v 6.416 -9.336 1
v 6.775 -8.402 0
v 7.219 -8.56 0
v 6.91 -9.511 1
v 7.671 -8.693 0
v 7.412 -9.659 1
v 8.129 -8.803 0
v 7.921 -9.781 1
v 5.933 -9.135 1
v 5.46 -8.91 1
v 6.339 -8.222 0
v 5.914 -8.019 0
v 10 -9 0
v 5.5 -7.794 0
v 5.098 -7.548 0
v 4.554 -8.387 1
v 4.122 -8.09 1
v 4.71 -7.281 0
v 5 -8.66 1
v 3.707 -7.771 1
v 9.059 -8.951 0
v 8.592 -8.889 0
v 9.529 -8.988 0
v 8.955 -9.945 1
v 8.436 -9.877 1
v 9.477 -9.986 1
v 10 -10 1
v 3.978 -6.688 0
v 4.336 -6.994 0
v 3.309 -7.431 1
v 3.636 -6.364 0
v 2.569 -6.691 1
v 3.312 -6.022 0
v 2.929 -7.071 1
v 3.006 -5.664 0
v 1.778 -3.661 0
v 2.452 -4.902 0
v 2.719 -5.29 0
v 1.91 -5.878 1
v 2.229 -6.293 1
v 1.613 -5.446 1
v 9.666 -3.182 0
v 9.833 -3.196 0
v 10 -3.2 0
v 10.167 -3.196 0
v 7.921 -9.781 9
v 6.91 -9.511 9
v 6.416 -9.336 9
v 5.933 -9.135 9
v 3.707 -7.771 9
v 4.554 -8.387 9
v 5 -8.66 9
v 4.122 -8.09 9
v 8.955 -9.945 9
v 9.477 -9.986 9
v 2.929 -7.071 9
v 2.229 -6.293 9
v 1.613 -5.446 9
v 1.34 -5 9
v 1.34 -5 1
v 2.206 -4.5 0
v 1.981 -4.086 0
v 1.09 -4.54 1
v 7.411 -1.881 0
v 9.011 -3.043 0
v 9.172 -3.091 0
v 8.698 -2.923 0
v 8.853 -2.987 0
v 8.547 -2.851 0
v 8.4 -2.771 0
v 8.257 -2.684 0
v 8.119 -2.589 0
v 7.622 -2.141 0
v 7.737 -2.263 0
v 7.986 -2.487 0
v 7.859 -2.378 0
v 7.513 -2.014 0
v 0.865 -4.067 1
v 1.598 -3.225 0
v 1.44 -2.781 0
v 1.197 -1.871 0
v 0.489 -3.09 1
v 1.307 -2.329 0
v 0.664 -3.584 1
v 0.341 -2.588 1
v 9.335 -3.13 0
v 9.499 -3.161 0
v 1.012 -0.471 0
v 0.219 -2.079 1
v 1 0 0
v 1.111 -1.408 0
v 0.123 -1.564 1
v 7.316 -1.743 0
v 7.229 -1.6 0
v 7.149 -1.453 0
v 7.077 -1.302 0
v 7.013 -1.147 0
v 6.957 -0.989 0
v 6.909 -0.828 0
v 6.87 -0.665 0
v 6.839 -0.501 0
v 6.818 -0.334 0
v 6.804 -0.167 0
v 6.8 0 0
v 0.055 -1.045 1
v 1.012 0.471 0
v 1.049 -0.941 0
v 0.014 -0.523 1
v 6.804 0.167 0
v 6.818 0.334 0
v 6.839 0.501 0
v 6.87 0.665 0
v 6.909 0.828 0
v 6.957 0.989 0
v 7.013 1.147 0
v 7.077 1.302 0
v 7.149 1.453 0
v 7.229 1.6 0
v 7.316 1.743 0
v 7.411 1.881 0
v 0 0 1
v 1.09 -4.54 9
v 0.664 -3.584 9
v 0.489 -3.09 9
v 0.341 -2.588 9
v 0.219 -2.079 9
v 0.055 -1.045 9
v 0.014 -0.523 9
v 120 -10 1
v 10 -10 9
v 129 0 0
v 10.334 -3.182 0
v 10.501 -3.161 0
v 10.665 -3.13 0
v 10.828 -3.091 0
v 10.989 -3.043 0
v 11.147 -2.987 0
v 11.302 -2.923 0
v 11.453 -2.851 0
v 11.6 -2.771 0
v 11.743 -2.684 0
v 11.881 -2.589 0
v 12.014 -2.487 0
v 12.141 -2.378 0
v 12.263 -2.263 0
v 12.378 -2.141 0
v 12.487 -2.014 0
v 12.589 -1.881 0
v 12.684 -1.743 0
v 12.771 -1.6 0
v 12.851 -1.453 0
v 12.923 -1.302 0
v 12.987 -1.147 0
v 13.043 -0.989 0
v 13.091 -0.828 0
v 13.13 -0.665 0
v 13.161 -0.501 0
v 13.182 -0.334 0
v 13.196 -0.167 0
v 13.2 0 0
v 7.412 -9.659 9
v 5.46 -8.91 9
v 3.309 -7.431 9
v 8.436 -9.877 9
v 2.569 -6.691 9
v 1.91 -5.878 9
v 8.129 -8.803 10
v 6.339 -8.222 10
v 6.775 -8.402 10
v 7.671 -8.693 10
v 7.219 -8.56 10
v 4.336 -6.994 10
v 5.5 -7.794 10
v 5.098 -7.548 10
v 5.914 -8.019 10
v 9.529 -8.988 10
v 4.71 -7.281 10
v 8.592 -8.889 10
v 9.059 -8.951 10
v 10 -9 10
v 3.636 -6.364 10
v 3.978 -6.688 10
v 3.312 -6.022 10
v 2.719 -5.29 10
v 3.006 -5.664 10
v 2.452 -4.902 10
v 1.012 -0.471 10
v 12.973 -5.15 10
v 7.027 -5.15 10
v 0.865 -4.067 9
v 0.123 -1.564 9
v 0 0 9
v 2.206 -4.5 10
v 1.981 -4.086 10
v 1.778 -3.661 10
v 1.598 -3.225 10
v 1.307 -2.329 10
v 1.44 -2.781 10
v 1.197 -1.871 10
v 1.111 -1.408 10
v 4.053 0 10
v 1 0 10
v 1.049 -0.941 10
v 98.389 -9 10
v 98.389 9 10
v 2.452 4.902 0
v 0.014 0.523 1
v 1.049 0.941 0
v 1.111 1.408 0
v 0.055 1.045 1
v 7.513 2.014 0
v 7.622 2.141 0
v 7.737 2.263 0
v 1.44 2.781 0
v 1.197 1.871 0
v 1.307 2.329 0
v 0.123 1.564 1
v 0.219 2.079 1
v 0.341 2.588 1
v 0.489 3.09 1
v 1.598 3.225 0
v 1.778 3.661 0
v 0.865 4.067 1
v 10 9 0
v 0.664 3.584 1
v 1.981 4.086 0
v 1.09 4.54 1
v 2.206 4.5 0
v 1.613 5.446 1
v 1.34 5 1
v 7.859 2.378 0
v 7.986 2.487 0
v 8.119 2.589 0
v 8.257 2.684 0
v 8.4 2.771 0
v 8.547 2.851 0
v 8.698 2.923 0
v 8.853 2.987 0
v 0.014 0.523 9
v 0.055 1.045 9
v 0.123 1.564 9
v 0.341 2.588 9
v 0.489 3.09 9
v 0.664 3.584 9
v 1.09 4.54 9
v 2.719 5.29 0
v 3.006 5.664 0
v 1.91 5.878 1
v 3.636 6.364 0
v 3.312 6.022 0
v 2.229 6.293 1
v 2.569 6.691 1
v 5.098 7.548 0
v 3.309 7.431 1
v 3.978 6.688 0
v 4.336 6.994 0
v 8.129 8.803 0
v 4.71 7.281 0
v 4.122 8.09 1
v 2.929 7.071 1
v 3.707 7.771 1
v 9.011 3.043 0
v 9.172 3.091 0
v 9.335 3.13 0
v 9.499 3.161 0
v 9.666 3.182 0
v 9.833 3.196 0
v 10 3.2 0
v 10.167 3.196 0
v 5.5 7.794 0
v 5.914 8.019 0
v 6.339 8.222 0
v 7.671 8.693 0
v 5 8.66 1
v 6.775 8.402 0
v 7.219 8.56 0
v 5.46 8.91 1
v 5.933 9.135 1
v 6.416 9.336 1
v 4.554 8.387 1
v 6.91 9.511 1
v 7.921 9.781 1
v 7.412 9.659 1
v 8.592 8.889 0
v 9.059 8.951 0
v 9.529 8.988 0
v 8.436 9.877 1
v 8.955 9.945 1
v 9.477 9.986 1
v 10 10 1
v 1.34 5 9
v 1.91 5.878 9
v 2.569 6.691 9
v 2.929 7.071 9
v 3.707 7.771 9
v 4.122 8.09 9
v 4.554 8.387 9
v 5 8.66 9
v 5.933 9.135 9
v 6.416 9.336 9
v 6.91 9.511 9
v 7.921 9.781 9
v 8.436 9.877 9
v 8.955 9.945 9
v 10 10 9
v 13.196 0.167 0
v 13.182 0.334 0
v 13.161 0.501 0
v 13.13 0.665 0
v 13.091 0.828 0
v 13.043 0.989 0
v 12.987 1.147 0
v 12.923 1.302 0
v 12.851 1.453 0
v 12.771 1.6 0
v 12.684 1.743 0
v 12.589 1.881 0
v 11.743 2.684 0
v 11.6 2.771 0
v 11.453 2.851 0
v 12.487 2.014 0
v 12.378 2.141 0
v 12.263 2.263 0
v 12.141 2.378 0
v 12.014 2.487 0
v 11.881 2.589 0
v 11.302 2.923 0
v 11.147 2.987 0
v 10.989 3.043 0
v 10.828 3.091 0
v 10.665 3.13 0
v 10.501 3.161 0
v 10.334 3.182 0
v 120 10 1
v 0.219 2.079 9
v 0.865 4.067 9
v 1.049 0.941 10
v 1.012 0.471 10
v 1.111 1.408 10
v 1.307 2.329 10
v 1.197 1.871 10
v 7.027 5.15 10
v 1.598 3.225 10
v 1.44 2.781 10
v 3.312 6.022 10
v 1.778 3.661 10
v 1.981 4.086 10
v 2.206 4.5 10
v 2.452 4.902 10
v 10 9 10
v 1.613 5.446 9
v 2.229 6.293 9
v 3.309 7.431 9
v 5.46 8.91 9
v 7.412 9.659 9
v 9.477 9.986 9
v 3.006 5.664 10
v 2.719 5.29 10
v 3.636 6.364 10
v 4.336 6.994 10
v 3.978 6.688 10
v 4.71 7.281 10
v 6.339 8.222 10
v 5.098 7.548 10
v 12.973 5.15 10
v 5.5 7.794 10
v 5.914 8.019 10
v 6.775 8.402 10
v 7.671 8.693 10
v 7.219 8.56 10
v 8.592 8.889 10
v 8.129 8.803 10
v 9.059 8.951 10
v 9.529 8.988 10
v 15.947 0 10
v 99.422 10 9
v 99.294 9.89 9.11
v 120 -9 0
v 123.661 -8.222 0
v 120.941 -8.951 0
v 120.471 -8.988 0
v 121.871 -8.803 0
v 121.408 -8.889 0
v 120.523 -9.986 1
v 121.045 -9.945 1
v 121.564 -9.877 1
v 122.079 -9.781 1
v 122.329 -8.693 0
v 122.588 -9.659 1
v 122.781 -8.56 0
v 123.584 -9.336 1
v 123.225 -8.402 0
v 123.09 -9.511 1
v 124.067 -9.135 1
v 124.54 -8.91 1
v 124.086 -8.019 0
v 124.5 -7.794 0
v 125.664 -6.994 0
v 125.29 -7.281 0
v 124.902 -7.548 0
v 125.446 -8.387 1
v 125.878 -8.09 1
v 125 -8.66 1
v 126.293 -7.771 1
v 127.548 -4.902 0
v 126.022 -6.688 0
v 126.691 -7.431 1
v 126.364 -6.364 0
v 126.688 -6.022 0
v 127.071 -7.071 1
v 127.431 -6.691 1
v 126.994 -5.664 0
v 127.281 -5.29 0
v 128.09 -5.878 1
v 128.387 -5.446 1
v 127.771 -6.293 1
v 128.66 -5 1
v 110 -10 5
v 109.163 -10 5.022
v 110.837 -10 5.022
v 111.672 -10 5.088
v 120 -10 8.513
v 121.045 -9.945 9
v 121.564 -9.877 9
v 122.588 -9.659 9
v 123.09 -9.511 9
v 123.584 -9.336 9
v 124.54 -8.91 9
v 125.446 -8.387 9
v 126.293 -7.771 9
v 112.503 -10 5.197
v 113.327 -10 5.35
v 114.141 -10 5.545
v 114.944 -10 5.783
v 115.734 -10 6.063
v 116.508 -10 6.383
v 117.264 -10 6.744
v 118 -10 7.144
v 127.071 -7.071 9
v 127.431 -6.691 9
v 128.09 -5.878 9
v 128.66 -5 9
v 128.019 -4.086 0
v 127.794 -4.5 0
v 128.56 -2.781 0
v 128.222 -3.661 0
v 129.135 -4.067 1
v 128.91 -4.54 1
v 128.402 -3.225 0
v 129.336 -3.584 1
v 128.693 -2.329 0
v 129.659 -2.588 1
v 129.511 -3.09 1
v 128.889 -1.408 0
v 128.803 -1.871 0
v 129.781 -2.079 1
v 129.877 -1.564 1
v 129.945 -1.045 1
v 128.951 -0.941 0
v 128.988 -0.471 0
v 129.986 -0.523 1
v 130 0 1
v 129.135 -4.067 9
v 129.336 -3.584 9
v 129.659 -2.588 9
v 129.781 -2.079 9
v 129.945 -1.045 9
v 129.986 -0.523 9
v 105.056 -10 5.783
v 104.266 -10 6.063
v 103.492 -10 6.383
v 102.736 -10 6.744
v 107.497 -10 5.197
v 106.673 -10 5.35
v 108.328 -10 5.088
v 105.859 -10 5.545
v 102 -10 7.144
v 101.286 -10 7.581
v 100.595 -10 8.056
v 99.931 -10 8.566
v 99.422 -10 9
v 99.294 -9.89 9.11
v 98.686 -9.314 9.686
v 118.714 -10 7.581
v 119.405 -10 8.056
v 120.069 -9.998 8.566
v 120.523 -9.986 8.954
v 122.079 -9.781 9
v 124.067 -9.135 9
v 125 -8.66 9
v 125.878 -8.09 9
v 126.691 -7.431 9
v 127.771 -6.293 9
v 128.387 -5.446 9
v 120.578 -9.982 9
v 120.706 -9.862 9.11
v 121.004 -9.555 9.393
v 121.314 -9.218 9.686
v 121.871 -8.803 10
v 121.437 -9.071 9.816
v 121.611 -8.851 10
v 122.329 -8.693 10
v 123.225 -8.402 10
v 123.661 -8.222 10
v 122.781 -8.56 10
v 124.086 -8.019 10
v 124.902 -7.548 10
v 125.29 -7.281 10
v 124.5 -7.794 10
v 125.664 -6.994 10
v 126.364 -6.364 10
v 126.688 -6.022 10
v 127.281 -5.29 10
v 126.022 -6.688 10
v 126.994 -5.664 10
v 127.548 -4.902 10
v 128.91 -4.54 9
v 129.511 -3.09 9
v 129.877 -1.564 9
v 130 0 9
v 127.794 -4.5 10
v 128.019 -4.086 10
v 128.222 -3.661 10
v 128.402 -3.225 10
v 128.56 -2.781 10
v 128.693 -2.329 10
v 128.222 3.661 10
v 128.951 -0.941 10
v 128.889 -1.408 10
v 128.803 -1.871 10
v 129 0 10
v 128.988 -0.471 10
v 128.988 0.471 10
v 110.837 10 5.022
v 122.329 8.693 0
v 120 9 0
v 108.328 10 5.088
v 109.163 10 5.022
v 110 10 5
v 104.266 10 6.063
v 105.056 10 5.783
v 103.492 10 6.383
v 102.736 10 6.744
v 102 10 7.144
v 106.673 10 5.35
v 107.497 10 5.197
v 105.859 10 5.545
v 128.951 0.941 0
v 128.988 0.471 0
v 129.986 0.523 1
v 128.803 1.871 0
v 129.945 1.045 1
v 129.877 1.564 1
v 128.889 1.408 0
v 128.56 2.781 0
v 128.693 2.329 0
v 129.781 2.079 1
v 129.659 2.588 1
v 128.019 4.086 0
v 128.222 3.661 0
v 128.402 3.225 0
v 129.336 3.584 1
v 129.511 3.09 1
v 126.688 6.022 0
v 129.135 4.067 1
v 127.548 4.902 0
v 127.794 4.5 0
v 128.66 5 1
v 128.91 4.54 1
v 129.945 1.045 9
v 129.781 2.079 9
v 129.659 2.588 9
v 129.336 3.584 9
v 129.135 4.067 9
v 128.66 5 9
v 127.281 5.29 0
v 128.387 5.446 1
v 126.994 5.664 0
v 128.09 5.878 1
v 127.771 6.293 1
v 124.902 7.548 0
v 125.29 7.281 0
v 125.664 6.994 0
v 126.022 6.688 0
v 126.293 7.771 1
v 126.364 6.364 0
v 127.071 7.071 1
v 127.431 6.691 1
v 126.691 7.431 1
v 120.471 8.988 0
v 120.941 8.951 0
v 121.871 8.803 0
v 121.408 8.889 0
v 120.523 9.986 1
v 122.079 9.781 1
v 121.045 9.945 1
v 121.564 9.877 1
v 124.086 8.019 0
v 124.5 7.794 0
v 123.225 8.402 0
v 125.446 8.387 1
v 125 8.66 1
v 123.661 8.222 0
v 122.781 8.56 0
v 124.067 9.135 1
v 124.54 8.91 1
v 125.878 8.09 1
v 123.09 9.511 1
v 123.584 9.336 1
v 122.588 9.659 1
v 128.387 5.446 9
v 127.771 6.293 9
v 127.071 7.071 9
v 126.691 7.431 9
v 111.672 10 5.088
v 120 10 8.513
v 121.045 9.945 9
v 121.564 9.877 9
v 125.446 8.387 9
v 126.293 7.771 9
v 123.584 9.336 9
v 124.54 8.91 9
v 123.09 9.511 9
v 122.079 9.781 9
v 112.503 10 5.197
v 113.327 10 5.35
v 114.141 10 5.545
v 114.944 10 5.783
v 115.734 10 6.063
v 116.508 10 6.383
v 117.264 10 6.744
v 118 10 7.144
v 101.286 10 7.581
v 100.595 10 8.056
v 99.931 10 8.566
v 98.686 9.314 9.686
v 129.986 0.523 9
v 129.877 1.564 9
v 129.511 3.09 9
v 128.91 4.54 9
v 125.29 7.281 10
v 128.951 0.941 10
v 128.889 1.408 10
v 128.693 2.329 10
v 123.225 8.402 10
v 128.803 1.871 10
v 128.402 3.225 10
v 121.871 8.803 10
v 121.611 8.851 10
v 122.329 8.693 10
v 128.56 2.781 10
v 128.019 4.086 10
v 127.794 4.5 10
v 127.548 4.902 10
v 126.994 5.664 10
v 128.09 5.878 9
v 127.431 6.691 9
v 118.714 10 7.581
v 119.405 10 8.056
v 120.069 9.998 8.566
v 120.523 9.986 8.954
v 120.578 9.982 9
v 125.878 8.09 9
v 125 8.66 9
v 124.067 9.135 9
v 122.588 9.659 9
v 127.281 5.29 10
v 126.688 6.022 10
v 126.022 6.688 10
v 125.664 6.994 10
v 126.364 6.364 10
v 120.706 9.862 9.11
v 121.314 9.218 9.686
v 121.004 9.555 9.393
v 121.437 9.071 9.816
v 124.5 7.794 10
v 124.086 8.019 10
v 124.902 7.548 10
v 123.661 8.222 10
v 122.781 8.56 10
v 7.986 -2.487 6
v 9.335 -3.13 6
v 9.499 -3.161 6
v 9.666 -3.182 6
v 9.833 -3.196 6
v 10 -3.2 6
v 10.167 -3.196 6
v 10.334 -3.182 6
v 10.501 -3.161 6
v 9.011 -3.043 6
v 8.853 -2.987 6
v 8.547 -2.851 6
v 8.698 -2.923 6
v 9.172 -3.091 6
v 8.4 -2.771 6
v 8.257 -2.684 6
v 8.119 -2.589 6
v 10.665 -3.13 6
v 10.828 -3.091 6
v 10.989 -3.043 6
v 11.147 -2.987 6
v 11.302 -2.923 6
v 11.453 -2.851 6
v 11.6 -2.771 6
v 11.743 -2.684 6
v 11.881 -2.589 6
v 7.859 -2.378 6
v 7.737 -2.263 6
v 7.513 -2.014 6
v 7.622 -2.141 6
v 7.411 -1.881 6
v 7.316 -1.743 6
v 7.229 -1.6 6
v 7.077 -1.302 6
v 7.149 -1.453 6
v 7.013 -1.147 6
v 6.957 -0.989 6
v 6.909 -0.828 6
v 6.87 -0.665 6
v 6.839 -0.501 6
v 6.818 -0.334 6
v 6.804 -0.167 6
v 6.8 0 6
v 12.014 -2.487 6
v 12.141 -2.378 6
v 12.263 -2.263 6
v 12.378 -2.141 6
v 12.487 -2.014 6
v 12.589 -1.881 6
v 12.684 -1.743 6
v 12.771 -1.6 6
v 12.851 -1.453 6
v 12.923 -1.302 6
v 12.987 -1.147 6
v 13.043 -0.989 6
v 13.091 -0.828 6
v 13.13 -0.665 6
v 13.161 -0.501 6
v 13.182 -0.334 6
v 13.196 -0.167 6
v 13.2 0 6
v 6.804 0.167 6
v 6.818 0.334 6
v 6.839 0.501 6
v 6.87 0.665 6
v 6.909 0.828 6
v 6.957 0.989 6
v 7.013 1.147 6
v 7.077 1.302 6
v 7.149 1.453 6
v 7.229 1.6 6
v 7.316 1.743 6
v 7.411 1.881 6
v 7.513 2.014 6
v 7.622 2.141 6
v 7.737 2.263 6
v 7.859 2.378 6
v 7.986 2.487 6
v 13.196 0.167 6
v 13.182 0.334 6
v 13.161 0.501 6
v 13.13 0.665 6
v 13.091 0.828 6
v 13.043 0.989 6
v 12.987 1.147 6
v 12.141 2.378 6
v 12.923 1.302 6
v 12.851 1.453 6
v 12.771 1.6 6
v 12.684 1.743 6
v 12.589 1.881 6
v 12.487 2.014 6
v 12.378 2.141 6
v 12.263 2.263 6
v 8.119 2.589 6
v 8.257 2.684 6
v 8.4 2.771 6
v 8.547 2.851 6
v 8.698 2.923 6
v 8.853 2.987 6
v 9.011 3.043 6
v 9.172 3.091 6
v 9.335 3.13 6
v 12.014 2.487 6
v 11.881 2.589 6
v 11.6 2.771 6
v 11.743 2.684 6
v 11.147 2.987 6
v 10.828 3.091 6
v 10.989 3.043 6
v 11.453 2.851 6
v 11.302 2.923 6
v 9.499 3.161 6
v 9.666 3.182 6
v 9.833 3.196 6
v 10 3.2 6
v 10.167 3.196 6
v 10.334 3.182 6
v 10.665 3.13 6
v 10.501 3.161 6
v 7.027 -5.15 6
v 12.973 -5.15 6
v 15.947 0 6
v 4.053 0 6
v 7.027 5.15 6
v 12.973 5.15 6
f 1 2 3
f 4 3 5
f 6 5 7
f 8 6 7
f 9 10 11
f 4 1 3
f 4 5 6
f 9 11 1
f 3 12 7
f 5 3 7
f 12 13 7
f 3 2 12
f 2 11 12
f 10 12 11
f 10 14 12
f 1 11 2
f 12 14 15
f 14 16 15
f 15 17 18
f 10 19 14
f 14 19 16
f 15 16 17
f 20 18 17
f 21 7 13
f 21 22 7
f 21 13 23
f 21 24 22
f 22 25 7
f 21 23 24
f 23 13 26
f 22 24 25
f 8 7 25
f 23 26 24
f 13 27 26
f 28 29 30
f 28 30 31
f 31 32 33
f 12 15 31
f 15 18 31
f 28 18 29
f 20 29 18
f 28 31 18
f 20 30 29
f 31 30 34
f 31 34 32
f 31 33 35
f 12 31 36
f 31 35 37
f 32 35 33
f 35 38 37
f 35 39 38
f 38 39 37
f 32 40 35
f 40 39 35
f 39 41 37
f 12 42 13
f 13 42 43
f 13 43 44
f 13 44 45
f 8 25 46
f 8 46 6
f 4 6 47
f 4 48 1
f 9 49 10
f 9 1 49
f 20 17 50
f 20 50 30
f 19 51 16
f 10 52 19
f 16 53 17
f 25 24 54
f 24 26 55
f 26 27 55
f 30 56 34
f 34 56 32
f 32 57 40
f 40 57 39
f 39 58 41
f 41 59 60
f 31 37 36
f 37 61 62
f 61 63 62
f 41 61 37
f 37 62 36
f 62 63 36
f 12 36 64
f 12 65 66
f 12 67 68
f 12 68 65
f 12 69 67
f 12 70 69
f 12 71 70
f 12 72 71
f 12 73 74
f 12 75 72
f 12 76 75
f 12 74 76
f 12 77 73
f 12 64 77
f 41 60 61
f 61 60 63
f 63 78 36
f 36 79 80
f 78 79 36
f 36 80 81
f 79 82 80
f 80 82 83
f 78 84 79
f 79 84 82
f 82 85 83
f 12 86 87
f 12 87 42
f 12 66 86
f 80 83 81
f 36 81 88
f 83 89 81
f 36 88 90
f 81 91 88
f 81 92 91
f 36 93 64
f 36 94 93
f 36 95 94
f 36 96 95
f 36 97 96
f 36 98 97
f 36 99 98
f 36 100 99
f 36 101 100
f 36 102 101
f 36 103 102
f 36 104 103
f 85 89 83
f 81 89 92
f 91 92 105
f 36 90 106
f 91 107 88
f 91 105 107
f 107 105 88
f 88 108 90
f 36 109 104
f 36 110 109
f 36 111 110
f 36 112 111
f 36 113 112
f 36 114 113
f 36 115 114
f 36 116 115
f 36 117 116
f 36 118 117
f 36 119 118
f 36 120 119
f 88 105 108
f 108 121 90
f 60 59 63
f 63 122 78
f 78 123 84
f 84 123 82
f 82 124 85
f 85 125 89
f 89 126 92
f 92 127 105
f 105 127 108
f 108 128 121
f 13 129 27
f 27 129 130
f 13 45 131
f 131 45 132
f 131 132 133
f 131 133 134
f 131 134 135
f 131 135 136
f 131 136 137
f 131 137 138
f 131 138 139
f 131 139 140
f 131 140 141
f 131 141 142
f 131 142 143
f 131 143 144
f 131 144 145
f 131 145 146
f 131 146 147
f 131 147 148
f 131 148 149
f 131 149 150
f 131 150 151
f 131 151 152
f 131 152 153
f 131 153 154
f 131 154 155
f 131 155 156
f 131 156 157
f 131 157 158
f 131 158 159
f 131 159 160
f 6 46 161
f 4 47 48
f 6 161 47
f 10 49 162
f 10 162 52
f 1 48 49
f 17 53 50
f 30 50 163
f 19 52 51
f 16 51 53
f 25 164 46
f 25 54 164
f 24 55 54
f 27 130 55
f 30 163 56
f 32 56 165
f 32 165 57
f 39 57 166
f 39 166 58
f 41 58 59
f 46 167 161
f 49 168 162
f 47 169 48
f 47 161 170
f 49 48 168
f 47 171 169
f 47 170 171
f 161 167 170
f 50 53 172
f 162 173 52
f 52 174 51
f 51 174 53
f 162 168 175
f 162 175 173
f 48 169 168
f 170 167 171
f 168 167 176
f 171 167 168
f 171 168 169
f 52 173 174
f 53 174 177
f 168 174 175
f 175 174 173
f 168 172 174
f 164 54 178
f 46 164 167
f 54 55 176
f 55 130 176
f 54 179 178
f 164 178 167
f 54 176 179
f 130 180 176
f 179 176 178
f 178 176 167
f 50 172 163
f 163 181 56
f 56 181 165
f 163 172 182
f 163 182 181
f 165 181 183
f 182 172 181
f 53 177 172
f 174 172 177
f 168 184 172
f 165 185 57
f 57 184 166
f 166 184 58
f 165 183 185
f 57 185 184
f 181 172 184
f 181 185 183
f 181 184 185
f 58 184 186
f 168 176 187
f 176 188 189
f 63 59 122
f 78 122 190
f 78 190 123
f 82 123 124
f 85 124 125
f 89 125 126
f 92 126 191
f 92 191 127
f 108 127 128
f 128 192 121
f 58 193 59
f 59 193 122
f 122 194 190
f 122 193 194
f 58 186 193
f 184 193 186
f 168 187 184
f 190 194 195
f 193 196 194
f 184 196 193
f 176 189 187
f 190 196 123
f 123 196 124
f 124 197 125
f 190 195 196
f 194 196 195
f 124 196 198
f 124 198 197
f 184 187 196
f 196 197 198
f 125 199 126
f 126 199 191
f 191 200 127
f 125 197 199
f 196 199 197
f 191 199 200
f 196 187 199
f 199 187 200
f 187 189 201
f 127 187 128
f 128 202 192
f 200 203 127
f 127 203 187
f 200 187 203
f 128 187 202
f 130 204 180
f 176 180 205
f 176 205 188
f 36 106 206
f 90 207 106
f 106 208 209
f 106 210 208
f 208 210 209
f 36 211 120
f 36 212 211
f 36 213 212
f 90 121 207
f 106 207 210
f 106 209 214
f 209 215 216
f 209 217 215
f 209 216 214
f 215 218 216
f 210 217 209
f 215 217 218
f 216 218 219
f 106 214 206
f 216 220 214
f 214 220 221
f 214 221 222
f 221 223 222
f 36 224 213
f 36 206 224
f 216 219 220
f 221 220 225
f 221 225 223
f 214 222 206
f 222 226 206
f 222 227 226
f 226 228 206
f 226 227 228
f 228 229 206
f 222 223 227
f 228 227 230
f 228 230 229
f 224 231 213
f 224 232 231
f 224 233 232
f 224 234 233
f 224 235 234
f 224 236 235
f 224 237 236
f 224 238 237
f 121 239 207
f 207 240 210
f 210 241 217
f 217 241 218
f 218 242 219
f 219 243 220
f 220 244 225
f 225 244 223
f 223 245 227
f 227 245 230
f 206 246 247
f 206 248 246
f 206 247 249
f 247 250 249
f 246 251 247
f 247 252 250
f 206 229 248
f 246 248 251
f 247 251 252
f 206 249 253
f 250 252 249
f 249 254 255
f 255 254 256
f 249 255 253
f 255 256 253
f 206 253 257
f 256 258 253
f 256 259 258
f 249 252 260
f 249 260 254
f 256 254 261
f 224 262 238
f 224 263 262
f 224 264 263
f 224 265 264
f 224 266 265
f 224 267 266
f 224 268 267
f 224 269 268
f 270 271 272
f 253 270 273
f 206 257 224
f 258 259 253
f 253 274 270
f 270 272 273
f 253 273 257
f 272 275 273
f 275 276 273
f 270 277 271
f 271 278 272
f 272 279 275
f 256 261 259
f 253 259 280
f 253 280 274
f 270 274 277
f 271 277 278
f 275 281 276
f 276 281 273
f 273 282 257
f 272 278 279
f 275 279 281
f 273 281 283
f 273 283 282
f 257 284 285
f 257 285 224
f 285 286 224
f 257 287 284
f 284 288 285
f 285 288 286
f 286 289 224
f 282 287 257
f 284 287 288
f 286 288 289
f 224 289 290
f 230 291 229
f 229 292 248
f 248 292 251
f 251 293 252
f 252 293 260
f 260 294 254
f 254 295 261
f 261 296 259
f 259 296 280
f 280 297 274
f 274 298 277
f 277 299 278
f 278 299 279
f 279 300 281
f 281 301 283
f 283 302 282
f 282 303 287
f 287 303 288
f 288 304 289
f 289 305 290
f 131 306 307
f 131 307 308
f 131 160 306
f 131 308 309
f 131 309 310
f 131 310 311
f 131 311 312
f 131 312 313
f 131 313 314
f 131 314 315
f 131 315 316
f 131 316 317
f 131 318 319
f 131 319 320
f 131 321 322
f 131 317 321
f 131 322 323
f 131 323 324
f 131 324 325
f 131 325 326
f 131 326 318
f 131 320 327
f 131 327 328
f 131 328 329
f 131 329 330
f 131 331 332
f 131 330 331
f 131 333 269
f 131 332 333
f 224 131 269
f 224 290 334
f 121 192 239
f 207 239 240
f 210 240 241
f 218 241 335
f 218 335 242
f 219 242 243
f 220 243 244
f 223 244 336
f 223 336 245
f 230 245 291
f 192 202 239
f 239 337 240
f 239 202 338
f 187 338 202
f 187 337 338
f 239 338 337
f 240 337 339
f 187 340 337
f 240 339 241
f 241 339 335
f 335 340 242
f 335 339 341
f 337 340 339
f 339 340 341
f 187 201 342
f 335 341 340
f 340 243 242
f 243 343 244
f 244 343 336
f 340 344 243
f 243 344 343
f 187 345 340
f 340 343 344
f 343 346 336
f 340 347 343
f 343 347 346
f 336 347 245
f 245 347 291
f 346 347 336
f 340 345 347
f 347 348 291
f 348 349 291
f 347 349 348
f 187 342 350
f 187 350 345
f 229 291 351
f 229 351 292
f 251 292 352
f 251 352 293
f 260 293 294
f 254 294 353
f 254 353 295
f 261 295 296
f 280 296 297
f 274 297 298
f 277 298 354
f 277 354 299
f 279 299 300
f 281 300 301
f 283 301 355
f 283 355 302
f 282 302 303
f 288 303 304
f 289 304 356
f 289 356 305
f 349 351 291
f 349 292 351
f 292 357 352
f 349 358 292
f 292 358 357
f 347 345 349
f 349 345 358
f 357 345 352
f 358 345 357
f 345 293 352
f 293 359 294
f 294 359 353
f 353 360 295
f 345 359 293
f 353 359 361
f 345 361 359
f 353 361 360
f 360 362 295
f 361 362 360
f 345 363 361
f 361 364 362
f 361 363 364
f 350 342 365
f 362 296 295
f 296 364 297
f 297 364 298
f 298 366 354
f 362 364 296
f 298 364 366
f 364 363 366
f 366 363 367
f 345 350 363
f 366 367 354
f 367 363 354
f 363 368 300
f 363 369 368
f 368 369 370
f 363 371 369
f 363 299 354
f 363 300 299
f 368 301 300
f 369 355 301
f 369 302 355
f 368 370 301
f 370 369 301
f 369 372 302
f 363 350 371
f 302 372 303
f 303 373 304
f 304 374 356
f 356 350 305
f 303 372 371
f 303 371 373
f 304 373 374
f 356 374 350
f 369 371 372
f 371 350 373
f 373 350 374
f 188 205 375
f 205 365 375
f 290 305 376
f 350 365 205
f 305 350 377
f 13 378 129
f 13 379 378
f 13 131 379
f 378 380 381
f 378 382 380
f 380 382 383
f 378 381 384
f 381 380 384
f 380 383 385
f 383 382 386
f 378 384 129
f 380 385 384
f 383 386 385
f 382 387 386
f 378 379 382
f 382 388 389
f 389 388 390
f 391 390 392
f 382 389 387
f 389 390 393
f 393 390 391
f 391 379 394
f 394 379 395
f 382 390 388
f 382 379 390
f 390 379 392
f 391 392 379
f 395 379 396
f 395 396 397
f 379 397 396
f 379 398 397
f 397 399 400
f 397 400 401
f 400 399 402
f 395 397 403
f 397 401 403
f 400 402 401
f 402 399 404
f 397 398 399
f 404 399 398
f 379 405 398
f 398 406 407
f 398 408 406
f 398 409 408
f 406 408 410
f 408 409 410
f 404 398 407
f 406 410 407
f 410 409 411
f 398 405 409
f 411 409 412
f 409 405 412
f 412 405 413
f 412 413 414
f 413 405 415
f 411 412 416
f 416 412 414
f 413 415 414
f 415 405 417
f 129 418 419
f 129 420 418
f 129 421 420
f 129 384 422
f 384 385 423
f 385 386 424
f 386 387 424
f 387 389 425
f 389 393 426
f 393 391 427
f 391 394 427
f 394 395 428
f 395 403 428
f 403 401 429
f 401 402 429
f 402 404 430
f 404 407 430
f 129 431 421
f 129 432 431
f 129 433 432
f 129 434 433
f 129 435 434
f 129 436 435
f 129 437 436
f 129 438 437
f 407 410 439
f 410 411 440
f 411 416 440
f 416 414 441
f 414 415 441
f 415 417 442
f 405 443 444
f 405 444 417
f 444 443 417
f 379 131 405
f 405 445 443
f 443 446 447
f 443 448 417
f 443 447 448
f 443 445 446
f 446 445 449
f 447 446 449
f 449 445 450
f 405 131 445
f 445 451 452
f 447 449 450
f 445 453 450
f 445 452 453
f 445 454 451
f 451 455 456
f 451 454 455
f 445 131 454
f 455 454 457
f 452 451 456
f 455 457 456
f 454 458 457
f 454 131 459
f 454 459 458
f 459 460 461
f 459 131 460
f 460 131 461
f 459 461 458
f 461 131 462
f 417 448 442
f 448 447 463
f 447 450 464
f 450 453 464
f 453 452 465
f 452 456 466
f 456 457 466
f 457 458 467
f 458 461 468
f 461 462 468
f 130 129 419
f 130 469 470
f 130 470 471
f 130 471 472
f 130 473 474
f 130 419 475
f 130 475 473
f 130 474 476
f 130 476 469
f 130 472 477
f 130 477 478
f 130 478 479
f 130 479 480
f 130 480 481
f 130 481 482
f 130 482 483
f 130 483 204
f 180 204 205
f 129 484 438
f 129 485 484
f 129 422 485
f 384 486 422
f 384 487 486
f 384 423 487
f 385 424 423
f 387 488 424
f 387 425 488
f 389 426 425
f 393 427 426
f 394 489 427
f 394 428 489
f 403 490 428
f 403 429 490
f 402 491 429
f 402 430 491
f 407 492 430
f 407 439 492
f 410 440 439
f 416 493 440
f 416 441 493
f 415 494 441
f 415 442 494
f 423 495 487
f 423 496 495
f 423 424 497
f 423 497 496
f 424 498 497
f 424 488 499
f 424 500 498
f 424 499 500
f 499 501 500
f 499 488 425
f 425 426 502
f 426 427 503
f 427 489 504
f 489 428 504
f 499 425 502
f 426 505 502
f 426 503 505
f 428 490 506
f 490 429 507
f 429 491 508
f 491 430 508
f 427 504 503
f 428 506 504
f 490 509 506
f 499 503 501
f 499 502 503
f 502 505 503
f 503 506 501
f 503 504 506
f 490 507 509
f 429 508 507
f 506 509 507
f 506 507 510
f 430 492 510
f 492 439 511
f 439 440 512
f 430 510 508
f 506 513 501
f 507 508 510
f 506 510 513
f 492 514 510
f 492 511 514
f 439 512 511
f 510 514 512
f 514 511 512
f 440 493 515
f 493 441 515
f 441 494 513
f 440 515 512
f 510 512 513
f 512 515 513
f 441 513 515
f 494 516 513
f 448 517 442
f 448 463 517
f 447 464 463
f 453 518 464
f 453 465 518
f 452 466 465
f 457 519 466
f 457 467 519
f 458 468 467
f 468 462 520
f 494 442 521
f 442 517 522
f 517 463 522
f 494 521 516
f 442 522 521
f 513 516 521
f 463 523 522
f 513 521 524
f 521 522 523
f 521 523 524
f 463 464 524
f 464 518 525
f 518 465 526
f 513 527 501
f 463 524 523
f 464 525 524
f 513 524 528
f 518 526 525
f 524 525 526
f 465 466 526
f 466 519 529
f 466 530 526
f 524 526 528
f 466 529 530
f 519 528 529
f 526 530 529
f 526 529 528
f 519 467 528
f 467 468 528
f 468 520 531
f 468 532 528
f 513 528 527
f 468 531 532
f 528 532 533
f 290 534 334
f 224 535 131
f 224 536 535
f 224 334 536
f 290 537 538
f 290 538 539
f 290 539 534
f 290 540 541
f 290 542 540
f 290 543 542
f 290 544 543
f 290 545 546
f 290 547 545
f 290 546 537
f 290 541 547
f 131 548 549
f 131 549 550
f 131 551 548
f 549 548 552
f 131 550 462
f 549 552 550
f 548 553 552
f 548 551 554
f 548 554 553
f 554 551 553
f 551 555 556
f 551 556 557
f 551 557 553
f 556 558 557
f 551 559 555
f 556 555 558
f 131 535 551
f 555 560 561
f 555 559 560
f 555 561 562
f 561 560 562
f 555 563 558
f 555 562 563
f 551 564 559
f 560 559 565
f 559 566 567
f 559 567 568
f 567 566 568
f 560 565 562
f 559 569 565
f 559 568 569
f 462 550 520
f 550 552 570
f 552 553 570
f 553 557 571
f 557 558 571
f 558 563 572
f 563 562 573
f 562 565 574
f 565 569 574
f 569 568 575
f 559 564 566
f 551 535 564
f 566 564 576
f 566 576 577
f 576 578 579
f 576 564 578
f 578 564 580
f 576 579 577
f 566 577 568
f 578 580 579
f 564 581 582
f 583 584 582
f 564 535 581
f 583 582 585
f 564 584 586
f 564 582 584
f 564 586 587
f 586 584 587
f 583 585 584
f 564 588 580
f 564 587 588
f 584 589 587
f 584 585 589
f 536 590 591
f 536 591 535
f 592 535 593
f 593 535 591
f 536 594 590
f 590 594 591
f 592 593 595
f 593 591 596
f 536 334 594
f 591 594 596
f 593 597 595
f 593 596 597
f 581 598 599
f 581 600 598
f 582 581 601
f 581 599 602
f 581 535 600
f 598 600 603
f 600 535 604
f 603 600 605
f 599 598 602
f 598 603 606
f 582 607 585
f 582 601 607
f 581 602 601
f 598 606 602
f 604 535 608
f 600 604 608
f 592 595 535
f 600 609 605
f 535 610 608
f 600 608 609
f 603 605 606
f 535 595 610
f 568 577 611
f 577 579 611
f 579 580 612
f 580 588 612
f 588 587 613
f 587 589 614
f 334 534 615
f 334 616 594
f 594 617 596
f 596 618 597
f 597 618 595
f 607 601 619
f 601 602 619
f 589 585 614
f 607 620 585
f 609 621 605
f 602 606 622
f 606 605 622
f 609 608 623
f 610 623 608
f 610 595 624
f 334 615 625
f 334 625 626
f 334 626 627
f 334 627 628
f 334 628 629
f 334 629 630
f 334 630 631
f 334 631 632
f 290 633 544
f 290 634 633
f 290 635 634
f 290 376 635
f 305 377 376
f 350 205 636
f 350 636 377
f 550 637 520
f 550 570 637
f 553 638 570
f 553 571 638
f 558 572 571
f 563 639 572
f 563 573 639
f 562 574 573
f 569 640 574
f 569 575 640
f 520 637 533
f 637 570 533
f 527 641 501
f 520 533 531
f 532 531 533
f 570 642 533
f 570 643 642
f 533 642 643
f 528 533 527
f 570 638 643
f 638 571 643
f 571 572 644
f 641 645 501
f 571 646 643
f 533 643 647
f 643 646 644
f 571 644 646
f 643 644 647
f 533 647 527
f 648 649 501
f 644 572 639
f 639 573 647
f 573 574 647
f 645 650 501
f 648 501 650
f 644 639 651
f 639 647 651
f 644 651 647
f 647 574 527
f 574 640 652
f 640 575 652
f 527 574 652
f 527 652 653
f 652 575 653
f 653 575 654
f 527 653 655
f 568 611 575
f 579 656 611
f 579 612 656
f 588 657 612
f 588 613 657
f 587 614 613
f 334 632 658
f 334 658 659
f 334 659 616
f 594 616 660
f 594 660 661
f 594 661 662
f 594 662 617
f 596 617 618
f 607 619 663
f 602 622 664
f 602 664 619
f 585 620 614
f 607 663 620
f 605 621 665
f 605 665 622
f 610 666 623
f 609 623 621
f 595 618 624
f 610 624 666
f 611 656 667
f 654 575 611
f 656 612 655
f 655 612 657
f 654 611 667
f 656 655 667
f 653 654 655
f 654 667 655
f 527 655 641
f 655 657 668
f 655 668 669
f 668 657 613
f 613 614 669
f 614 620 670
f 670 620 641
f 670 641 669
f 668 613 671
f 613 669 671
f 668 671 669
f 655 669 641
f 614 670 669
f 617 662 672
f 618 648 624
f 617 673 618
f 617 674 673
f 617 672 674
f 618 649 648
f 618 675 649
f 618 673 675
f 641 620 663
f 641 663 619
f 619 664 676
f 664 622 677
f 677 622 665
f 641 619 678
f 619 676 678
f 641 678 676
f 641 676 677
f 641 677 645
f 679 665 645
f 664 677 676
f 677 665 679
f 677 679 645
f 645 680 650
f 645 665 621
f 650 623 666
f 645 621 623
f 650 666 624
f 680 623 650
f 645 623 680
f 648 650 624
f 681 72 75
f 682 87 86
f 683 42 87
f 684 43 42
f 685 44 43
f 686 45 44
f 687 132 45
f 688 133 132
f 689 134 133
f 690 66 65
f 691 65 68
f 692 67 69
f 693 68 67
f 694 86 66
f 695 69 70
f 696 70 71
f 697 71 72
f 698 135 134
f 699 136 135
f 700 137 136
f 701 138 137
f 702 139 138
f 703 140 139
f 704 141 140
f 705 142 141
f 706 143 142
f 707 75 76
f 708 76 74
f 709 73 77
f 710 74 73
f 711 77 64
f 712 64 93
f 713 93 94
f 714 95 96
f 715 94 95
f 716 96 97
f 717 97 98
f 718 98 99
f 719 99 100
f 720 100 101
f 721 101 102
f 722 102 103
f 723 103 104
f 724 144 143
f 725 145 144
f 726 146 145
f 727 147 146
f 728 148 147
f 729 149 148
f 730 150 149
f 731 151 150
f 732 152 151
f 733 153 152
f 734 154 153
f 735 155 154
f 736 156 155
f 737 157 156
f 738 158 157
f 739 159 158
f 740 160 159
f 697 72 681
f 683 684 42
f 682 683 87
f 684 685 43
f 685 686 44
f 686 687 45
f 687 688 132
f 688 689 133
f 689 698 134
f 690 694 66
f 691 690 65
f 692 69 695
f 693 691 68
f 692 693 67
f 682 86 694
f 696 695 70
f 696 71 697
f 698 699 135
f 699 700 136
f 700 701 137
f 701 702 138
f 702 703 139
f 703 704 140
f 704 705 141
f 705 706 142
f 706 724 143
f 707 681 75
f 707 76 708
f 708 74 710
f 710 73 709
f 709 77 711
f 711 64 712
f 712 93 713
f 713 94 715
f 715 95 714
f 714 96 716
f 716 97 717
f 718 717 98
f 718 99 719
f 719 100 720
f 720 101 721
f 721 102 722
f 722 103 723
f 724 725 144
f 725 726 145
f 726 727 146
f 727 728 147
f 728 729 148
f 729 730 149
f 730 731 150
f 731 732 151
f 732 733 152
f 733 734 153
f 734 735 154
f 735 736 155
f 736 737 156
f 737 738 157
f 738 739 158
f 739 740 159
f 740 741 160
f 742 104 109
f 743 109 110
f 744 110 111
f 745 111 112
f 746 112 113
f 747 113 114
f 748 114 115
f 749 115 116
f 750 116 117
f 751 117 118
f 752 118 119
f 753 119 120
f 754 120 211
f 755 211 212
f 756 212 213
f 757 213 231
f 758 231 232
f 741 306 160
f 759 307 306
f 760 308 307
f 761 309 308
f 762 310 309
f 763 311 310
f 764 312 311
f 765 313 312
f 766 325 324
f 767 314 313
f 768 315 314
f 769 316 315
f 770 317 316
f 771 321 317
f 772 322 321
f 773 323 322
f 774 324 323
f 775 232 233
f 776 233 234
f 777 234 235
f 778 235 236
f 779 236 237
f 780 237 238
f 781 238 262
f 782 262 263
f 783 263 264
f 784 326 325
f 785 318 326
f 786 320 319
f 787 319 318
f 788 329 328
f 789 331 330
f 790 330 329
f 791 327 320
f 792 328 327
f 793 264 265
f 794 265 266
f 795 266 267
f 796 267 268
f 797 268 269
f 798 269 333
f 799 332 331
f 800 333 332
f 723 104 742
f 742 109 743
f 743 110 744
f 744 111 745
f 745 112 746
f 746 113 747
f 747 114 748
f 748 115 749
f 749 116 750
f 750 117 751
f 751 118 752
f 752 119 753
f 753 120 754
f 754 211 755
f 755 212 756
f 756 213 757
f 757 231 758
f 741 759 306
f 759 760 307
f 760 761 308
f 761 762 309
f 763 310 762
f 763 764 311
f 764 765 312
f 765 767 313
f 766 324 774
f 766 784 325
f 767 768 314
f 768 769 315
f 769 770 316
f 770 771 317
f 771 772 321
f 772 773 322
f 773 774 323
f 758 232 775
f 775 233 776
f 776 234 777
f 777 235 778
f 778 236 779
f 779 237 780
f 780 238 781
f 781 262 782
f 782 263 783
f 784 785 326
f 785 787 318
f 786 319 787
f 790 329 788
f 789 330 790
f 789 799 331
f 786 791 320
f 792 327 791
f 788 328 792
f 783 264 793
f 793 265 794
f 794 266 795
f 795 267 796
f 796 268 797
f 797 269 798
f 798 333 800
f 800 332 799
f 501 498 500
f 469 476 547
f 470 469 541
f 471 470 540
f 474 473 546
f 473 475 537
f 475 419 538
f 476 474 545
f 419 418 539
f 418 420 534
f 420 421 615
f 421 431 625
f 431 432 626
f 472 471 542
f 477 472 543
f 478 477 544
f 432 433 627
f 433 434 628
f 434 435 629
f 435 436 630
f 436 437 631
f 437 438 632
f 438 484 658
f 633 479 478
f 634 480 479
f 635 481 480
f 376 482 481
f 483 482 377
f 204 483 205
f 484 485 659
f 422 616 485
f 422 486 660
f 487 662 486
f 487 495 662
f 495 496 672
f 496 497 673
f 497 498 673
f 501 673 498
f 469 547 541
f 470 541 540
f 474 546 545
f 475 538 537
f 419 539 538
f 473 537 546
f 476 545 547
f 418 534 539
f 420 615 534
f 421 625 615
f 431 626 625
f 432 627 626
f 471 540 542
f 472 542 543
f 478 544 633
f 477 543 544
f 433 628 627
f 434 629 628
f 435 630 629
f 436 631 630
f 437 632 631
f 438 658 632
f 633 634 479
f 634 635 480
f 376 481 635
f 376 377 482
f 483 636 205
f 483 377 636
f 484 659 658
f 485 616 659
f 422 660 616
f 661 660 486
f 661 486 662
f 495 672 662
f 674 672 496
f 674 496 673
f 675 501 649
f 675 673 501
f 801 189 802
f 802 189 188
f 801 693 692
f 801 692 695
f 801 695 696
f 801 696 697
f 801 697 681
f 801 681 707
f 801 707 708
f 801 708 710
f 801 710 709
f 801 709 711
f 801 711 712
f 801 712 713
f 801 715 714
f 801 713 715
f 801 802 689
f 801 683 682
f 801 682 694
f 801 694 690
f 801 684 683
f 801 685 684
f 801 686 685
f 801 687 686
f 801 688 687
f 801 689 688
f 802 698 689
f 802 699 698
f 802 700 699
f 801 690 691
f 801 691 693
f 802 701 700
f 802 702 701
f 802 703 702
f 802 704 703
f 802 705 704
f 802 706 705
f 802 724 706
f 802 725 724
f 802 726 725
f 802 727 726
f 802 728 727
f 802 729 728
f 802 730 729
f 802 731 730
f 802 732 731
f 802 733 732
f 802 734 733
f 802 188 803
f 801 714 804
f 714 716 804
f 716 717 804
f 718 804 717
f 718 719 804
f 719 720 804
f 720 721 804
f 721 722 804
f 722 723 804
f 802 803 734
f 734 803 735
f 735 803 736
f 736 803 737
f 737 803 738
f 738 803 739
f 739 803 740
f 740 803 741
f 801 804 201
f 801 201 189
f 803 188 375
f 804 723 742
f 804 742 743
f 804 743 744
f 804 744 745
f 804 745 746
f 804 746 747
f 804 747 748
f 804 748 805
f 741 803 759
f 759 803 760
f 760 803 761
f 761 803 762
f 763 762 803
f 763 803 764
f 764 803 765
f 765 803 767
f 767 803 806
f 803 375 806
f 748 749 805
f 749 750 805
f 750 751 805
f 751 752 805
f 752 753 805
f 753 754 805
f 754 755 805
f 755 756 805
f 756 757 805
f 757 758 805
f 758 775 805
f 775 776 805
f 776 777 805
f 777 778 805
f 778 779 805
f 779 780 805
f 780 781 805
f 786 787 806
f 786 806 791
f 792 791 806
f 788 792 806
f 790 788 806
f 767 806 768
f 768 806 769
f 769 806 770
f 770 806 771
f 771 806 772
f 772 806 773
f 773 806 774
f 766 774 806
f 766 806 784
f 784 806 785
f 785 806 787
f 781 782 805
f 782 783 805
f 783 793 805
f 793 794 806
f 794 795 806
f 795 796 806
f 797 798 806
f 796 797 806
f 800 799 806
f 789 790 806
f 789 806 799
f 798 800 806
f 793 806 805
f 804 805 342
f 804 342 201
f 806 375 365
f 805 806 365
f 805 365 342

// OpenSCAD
// Makita Lawnmower Hatch Lever
// File: Makita-Lawnmower-Hatch-Lever.scad
// Version: v0.03
// Date: 2026-07-23
// Description: Parametric lever to hold open a Makita lawnmower hatch with an optional hexagonal nut recess and chamfered edges.
//
// Designed to be printed flat on the print bed with zero support material.
// The lever pivots on an M6 bolt and hooks under the lawnmower's handle bar.

/* [Lever Dimensions] */
// Total length of the lever (mm)
lever_length = 130; // [50:300]
// Width of the lever (mm)
lever_width = 20; // [10:100]
// Thickness of the lever (mm)
lever_thickness = 10; // [5:50]
// Chamfer size for the top and bottom edges (mm). Use 0 for flat edges.
chamfer_size = 1.0; // [0:5]

/* [Pivot Hole (M6)] */
// Bolt hole diameter (mm). M6 clearance hole is typically 6.4mm.
bolt_hole_diameter = 6.4;
// Offset of the bolt hole from the pivot end (mm)
bolt_hole_offset = 10;

/* [Nut Recession (Hex Pocket)] */
// Enable hexagonal recess for nut or bolt head
nut_recess_enable = true;
// Flat-to-flat distance of the hex nut (mm). M6 nut is typically 10mm + 0.3mm print tolerance.
nut_recess_flat_to_flat = 10.3;
// Depth of the nut recess (mm)
nut_recess_depth = 4; // [1:20]
// Whether the nut recess is on the top surface (true) or bottom surface (false)
nut_recess_on_top = true;

/* [Handle Cutout] */
// Diameter of the lawnmower handle bar cylinder (mm)
cutout_diameter = 32;
// Depth of the cylindrical cutout (mm)
cutout_depth = 5;
// Position of the cutout center from the pivot end (mm)
cutout_offset = 110;
// Whether the cutout is on the top surface (true) or bottom surface (false)
cutout_on_top = true;
// Angle of the handle relative to the perpendicular direction (degrees)
cutout_angle = 0; // [-60:60]

/* [Rendering Resolution] */
// Circle smoothness ($fn value)
resolution = 120; // [30:200]

// --- Helper Modules ---

// A cylinder with chamfered top and bottom edges
module chamfered_cylinder(h, r, c) {
    // Ensure the chamfer size is safe and doesn't exceed half the height
    safe_c = min(c, h / 2 - 0.01);

    if (safe_c <= 0) {
        cylinder(h = h, r = r, center = false);
    } else {
        // Bottom cone
        cylinder(h = safe_c, r1 = r - safe_c, r2 = r, center = false);
        // Middle section
        translate([0, 0, safe_c])
            cylinder(h = h - 2 * safe_c, r = r, center = false);
        // Top cone
        translate([0, 0, h - safe_c])
            cylinder(h = safe_c, r1 = r, r2 = r - safe_c, center = false);
    }
}

// --- Main Model Assembly ---

module makita_lawnmower_hatch_lever() {
    $fn = resolution;
    cutout_radius = cutout_diameter / 2;

    difference() {
        // 1. Solid capsule-shaped lever body with chamfered edges
        hull() {
            // Rounding at the pivot end
            translate([lever_width/2, 0, 0])
                chamfered_cylinder(h = lever_thickness, r = lever_width/2, c = chamfer_size);

            // Rounding at the far end
            translate([lever_length - lever_width/2, 0, 0])
                chamfered_cylinder(h = lever_thickness, r = lever_width/2, c = chamfer_size);
        }

        // 2. Pivot hole (M6 bolt)
        translate([bolt_hole_offset, 0, -1])
            cylinder(h = lever_thickness + 2, d = bolt_hole_diameter, center = false);

        // 3. Cylindrical handle cutout
        // Calculate appropriate Z position for top vs. bottom cutout
        z_offset = cutout_on_top ?
            (lever_thickness - cutout_depth + cutout_radius) :
            (cutout_depth - cutout_radius);

        translate([cutout_offset, 0, z_offset])
            rotate([0, 0, cutout_angle])
            rotate([90, 0, 0])
                cylinder(h = lever_width * 2, r = cutout_radius, center = true);

        // 4. Hexagonal nut recess
        if (nut_recess_enable) {
            // Calculate appropriate Z position for top vs. bottom recess
            nut_z_offset = nut_recess_on_top ?
                (lever_thickness - nut_recess_depth) :
                -1;

            // Hexagon outer radius (vertex radius) based on flat-to-flat width
            nut_recess_radius = (nut_recess_flat_to_flat / 2) / cos(30);

            translate([bolt_hole_offset, 0, nut_z_offset])
                cylinder(h = nut_recess_depth + 1, r = nut_recess_radius, $fn = 6, center = false);
        }
    }
}

// Render the lever
makita_lawnmower_hatch_lever();
